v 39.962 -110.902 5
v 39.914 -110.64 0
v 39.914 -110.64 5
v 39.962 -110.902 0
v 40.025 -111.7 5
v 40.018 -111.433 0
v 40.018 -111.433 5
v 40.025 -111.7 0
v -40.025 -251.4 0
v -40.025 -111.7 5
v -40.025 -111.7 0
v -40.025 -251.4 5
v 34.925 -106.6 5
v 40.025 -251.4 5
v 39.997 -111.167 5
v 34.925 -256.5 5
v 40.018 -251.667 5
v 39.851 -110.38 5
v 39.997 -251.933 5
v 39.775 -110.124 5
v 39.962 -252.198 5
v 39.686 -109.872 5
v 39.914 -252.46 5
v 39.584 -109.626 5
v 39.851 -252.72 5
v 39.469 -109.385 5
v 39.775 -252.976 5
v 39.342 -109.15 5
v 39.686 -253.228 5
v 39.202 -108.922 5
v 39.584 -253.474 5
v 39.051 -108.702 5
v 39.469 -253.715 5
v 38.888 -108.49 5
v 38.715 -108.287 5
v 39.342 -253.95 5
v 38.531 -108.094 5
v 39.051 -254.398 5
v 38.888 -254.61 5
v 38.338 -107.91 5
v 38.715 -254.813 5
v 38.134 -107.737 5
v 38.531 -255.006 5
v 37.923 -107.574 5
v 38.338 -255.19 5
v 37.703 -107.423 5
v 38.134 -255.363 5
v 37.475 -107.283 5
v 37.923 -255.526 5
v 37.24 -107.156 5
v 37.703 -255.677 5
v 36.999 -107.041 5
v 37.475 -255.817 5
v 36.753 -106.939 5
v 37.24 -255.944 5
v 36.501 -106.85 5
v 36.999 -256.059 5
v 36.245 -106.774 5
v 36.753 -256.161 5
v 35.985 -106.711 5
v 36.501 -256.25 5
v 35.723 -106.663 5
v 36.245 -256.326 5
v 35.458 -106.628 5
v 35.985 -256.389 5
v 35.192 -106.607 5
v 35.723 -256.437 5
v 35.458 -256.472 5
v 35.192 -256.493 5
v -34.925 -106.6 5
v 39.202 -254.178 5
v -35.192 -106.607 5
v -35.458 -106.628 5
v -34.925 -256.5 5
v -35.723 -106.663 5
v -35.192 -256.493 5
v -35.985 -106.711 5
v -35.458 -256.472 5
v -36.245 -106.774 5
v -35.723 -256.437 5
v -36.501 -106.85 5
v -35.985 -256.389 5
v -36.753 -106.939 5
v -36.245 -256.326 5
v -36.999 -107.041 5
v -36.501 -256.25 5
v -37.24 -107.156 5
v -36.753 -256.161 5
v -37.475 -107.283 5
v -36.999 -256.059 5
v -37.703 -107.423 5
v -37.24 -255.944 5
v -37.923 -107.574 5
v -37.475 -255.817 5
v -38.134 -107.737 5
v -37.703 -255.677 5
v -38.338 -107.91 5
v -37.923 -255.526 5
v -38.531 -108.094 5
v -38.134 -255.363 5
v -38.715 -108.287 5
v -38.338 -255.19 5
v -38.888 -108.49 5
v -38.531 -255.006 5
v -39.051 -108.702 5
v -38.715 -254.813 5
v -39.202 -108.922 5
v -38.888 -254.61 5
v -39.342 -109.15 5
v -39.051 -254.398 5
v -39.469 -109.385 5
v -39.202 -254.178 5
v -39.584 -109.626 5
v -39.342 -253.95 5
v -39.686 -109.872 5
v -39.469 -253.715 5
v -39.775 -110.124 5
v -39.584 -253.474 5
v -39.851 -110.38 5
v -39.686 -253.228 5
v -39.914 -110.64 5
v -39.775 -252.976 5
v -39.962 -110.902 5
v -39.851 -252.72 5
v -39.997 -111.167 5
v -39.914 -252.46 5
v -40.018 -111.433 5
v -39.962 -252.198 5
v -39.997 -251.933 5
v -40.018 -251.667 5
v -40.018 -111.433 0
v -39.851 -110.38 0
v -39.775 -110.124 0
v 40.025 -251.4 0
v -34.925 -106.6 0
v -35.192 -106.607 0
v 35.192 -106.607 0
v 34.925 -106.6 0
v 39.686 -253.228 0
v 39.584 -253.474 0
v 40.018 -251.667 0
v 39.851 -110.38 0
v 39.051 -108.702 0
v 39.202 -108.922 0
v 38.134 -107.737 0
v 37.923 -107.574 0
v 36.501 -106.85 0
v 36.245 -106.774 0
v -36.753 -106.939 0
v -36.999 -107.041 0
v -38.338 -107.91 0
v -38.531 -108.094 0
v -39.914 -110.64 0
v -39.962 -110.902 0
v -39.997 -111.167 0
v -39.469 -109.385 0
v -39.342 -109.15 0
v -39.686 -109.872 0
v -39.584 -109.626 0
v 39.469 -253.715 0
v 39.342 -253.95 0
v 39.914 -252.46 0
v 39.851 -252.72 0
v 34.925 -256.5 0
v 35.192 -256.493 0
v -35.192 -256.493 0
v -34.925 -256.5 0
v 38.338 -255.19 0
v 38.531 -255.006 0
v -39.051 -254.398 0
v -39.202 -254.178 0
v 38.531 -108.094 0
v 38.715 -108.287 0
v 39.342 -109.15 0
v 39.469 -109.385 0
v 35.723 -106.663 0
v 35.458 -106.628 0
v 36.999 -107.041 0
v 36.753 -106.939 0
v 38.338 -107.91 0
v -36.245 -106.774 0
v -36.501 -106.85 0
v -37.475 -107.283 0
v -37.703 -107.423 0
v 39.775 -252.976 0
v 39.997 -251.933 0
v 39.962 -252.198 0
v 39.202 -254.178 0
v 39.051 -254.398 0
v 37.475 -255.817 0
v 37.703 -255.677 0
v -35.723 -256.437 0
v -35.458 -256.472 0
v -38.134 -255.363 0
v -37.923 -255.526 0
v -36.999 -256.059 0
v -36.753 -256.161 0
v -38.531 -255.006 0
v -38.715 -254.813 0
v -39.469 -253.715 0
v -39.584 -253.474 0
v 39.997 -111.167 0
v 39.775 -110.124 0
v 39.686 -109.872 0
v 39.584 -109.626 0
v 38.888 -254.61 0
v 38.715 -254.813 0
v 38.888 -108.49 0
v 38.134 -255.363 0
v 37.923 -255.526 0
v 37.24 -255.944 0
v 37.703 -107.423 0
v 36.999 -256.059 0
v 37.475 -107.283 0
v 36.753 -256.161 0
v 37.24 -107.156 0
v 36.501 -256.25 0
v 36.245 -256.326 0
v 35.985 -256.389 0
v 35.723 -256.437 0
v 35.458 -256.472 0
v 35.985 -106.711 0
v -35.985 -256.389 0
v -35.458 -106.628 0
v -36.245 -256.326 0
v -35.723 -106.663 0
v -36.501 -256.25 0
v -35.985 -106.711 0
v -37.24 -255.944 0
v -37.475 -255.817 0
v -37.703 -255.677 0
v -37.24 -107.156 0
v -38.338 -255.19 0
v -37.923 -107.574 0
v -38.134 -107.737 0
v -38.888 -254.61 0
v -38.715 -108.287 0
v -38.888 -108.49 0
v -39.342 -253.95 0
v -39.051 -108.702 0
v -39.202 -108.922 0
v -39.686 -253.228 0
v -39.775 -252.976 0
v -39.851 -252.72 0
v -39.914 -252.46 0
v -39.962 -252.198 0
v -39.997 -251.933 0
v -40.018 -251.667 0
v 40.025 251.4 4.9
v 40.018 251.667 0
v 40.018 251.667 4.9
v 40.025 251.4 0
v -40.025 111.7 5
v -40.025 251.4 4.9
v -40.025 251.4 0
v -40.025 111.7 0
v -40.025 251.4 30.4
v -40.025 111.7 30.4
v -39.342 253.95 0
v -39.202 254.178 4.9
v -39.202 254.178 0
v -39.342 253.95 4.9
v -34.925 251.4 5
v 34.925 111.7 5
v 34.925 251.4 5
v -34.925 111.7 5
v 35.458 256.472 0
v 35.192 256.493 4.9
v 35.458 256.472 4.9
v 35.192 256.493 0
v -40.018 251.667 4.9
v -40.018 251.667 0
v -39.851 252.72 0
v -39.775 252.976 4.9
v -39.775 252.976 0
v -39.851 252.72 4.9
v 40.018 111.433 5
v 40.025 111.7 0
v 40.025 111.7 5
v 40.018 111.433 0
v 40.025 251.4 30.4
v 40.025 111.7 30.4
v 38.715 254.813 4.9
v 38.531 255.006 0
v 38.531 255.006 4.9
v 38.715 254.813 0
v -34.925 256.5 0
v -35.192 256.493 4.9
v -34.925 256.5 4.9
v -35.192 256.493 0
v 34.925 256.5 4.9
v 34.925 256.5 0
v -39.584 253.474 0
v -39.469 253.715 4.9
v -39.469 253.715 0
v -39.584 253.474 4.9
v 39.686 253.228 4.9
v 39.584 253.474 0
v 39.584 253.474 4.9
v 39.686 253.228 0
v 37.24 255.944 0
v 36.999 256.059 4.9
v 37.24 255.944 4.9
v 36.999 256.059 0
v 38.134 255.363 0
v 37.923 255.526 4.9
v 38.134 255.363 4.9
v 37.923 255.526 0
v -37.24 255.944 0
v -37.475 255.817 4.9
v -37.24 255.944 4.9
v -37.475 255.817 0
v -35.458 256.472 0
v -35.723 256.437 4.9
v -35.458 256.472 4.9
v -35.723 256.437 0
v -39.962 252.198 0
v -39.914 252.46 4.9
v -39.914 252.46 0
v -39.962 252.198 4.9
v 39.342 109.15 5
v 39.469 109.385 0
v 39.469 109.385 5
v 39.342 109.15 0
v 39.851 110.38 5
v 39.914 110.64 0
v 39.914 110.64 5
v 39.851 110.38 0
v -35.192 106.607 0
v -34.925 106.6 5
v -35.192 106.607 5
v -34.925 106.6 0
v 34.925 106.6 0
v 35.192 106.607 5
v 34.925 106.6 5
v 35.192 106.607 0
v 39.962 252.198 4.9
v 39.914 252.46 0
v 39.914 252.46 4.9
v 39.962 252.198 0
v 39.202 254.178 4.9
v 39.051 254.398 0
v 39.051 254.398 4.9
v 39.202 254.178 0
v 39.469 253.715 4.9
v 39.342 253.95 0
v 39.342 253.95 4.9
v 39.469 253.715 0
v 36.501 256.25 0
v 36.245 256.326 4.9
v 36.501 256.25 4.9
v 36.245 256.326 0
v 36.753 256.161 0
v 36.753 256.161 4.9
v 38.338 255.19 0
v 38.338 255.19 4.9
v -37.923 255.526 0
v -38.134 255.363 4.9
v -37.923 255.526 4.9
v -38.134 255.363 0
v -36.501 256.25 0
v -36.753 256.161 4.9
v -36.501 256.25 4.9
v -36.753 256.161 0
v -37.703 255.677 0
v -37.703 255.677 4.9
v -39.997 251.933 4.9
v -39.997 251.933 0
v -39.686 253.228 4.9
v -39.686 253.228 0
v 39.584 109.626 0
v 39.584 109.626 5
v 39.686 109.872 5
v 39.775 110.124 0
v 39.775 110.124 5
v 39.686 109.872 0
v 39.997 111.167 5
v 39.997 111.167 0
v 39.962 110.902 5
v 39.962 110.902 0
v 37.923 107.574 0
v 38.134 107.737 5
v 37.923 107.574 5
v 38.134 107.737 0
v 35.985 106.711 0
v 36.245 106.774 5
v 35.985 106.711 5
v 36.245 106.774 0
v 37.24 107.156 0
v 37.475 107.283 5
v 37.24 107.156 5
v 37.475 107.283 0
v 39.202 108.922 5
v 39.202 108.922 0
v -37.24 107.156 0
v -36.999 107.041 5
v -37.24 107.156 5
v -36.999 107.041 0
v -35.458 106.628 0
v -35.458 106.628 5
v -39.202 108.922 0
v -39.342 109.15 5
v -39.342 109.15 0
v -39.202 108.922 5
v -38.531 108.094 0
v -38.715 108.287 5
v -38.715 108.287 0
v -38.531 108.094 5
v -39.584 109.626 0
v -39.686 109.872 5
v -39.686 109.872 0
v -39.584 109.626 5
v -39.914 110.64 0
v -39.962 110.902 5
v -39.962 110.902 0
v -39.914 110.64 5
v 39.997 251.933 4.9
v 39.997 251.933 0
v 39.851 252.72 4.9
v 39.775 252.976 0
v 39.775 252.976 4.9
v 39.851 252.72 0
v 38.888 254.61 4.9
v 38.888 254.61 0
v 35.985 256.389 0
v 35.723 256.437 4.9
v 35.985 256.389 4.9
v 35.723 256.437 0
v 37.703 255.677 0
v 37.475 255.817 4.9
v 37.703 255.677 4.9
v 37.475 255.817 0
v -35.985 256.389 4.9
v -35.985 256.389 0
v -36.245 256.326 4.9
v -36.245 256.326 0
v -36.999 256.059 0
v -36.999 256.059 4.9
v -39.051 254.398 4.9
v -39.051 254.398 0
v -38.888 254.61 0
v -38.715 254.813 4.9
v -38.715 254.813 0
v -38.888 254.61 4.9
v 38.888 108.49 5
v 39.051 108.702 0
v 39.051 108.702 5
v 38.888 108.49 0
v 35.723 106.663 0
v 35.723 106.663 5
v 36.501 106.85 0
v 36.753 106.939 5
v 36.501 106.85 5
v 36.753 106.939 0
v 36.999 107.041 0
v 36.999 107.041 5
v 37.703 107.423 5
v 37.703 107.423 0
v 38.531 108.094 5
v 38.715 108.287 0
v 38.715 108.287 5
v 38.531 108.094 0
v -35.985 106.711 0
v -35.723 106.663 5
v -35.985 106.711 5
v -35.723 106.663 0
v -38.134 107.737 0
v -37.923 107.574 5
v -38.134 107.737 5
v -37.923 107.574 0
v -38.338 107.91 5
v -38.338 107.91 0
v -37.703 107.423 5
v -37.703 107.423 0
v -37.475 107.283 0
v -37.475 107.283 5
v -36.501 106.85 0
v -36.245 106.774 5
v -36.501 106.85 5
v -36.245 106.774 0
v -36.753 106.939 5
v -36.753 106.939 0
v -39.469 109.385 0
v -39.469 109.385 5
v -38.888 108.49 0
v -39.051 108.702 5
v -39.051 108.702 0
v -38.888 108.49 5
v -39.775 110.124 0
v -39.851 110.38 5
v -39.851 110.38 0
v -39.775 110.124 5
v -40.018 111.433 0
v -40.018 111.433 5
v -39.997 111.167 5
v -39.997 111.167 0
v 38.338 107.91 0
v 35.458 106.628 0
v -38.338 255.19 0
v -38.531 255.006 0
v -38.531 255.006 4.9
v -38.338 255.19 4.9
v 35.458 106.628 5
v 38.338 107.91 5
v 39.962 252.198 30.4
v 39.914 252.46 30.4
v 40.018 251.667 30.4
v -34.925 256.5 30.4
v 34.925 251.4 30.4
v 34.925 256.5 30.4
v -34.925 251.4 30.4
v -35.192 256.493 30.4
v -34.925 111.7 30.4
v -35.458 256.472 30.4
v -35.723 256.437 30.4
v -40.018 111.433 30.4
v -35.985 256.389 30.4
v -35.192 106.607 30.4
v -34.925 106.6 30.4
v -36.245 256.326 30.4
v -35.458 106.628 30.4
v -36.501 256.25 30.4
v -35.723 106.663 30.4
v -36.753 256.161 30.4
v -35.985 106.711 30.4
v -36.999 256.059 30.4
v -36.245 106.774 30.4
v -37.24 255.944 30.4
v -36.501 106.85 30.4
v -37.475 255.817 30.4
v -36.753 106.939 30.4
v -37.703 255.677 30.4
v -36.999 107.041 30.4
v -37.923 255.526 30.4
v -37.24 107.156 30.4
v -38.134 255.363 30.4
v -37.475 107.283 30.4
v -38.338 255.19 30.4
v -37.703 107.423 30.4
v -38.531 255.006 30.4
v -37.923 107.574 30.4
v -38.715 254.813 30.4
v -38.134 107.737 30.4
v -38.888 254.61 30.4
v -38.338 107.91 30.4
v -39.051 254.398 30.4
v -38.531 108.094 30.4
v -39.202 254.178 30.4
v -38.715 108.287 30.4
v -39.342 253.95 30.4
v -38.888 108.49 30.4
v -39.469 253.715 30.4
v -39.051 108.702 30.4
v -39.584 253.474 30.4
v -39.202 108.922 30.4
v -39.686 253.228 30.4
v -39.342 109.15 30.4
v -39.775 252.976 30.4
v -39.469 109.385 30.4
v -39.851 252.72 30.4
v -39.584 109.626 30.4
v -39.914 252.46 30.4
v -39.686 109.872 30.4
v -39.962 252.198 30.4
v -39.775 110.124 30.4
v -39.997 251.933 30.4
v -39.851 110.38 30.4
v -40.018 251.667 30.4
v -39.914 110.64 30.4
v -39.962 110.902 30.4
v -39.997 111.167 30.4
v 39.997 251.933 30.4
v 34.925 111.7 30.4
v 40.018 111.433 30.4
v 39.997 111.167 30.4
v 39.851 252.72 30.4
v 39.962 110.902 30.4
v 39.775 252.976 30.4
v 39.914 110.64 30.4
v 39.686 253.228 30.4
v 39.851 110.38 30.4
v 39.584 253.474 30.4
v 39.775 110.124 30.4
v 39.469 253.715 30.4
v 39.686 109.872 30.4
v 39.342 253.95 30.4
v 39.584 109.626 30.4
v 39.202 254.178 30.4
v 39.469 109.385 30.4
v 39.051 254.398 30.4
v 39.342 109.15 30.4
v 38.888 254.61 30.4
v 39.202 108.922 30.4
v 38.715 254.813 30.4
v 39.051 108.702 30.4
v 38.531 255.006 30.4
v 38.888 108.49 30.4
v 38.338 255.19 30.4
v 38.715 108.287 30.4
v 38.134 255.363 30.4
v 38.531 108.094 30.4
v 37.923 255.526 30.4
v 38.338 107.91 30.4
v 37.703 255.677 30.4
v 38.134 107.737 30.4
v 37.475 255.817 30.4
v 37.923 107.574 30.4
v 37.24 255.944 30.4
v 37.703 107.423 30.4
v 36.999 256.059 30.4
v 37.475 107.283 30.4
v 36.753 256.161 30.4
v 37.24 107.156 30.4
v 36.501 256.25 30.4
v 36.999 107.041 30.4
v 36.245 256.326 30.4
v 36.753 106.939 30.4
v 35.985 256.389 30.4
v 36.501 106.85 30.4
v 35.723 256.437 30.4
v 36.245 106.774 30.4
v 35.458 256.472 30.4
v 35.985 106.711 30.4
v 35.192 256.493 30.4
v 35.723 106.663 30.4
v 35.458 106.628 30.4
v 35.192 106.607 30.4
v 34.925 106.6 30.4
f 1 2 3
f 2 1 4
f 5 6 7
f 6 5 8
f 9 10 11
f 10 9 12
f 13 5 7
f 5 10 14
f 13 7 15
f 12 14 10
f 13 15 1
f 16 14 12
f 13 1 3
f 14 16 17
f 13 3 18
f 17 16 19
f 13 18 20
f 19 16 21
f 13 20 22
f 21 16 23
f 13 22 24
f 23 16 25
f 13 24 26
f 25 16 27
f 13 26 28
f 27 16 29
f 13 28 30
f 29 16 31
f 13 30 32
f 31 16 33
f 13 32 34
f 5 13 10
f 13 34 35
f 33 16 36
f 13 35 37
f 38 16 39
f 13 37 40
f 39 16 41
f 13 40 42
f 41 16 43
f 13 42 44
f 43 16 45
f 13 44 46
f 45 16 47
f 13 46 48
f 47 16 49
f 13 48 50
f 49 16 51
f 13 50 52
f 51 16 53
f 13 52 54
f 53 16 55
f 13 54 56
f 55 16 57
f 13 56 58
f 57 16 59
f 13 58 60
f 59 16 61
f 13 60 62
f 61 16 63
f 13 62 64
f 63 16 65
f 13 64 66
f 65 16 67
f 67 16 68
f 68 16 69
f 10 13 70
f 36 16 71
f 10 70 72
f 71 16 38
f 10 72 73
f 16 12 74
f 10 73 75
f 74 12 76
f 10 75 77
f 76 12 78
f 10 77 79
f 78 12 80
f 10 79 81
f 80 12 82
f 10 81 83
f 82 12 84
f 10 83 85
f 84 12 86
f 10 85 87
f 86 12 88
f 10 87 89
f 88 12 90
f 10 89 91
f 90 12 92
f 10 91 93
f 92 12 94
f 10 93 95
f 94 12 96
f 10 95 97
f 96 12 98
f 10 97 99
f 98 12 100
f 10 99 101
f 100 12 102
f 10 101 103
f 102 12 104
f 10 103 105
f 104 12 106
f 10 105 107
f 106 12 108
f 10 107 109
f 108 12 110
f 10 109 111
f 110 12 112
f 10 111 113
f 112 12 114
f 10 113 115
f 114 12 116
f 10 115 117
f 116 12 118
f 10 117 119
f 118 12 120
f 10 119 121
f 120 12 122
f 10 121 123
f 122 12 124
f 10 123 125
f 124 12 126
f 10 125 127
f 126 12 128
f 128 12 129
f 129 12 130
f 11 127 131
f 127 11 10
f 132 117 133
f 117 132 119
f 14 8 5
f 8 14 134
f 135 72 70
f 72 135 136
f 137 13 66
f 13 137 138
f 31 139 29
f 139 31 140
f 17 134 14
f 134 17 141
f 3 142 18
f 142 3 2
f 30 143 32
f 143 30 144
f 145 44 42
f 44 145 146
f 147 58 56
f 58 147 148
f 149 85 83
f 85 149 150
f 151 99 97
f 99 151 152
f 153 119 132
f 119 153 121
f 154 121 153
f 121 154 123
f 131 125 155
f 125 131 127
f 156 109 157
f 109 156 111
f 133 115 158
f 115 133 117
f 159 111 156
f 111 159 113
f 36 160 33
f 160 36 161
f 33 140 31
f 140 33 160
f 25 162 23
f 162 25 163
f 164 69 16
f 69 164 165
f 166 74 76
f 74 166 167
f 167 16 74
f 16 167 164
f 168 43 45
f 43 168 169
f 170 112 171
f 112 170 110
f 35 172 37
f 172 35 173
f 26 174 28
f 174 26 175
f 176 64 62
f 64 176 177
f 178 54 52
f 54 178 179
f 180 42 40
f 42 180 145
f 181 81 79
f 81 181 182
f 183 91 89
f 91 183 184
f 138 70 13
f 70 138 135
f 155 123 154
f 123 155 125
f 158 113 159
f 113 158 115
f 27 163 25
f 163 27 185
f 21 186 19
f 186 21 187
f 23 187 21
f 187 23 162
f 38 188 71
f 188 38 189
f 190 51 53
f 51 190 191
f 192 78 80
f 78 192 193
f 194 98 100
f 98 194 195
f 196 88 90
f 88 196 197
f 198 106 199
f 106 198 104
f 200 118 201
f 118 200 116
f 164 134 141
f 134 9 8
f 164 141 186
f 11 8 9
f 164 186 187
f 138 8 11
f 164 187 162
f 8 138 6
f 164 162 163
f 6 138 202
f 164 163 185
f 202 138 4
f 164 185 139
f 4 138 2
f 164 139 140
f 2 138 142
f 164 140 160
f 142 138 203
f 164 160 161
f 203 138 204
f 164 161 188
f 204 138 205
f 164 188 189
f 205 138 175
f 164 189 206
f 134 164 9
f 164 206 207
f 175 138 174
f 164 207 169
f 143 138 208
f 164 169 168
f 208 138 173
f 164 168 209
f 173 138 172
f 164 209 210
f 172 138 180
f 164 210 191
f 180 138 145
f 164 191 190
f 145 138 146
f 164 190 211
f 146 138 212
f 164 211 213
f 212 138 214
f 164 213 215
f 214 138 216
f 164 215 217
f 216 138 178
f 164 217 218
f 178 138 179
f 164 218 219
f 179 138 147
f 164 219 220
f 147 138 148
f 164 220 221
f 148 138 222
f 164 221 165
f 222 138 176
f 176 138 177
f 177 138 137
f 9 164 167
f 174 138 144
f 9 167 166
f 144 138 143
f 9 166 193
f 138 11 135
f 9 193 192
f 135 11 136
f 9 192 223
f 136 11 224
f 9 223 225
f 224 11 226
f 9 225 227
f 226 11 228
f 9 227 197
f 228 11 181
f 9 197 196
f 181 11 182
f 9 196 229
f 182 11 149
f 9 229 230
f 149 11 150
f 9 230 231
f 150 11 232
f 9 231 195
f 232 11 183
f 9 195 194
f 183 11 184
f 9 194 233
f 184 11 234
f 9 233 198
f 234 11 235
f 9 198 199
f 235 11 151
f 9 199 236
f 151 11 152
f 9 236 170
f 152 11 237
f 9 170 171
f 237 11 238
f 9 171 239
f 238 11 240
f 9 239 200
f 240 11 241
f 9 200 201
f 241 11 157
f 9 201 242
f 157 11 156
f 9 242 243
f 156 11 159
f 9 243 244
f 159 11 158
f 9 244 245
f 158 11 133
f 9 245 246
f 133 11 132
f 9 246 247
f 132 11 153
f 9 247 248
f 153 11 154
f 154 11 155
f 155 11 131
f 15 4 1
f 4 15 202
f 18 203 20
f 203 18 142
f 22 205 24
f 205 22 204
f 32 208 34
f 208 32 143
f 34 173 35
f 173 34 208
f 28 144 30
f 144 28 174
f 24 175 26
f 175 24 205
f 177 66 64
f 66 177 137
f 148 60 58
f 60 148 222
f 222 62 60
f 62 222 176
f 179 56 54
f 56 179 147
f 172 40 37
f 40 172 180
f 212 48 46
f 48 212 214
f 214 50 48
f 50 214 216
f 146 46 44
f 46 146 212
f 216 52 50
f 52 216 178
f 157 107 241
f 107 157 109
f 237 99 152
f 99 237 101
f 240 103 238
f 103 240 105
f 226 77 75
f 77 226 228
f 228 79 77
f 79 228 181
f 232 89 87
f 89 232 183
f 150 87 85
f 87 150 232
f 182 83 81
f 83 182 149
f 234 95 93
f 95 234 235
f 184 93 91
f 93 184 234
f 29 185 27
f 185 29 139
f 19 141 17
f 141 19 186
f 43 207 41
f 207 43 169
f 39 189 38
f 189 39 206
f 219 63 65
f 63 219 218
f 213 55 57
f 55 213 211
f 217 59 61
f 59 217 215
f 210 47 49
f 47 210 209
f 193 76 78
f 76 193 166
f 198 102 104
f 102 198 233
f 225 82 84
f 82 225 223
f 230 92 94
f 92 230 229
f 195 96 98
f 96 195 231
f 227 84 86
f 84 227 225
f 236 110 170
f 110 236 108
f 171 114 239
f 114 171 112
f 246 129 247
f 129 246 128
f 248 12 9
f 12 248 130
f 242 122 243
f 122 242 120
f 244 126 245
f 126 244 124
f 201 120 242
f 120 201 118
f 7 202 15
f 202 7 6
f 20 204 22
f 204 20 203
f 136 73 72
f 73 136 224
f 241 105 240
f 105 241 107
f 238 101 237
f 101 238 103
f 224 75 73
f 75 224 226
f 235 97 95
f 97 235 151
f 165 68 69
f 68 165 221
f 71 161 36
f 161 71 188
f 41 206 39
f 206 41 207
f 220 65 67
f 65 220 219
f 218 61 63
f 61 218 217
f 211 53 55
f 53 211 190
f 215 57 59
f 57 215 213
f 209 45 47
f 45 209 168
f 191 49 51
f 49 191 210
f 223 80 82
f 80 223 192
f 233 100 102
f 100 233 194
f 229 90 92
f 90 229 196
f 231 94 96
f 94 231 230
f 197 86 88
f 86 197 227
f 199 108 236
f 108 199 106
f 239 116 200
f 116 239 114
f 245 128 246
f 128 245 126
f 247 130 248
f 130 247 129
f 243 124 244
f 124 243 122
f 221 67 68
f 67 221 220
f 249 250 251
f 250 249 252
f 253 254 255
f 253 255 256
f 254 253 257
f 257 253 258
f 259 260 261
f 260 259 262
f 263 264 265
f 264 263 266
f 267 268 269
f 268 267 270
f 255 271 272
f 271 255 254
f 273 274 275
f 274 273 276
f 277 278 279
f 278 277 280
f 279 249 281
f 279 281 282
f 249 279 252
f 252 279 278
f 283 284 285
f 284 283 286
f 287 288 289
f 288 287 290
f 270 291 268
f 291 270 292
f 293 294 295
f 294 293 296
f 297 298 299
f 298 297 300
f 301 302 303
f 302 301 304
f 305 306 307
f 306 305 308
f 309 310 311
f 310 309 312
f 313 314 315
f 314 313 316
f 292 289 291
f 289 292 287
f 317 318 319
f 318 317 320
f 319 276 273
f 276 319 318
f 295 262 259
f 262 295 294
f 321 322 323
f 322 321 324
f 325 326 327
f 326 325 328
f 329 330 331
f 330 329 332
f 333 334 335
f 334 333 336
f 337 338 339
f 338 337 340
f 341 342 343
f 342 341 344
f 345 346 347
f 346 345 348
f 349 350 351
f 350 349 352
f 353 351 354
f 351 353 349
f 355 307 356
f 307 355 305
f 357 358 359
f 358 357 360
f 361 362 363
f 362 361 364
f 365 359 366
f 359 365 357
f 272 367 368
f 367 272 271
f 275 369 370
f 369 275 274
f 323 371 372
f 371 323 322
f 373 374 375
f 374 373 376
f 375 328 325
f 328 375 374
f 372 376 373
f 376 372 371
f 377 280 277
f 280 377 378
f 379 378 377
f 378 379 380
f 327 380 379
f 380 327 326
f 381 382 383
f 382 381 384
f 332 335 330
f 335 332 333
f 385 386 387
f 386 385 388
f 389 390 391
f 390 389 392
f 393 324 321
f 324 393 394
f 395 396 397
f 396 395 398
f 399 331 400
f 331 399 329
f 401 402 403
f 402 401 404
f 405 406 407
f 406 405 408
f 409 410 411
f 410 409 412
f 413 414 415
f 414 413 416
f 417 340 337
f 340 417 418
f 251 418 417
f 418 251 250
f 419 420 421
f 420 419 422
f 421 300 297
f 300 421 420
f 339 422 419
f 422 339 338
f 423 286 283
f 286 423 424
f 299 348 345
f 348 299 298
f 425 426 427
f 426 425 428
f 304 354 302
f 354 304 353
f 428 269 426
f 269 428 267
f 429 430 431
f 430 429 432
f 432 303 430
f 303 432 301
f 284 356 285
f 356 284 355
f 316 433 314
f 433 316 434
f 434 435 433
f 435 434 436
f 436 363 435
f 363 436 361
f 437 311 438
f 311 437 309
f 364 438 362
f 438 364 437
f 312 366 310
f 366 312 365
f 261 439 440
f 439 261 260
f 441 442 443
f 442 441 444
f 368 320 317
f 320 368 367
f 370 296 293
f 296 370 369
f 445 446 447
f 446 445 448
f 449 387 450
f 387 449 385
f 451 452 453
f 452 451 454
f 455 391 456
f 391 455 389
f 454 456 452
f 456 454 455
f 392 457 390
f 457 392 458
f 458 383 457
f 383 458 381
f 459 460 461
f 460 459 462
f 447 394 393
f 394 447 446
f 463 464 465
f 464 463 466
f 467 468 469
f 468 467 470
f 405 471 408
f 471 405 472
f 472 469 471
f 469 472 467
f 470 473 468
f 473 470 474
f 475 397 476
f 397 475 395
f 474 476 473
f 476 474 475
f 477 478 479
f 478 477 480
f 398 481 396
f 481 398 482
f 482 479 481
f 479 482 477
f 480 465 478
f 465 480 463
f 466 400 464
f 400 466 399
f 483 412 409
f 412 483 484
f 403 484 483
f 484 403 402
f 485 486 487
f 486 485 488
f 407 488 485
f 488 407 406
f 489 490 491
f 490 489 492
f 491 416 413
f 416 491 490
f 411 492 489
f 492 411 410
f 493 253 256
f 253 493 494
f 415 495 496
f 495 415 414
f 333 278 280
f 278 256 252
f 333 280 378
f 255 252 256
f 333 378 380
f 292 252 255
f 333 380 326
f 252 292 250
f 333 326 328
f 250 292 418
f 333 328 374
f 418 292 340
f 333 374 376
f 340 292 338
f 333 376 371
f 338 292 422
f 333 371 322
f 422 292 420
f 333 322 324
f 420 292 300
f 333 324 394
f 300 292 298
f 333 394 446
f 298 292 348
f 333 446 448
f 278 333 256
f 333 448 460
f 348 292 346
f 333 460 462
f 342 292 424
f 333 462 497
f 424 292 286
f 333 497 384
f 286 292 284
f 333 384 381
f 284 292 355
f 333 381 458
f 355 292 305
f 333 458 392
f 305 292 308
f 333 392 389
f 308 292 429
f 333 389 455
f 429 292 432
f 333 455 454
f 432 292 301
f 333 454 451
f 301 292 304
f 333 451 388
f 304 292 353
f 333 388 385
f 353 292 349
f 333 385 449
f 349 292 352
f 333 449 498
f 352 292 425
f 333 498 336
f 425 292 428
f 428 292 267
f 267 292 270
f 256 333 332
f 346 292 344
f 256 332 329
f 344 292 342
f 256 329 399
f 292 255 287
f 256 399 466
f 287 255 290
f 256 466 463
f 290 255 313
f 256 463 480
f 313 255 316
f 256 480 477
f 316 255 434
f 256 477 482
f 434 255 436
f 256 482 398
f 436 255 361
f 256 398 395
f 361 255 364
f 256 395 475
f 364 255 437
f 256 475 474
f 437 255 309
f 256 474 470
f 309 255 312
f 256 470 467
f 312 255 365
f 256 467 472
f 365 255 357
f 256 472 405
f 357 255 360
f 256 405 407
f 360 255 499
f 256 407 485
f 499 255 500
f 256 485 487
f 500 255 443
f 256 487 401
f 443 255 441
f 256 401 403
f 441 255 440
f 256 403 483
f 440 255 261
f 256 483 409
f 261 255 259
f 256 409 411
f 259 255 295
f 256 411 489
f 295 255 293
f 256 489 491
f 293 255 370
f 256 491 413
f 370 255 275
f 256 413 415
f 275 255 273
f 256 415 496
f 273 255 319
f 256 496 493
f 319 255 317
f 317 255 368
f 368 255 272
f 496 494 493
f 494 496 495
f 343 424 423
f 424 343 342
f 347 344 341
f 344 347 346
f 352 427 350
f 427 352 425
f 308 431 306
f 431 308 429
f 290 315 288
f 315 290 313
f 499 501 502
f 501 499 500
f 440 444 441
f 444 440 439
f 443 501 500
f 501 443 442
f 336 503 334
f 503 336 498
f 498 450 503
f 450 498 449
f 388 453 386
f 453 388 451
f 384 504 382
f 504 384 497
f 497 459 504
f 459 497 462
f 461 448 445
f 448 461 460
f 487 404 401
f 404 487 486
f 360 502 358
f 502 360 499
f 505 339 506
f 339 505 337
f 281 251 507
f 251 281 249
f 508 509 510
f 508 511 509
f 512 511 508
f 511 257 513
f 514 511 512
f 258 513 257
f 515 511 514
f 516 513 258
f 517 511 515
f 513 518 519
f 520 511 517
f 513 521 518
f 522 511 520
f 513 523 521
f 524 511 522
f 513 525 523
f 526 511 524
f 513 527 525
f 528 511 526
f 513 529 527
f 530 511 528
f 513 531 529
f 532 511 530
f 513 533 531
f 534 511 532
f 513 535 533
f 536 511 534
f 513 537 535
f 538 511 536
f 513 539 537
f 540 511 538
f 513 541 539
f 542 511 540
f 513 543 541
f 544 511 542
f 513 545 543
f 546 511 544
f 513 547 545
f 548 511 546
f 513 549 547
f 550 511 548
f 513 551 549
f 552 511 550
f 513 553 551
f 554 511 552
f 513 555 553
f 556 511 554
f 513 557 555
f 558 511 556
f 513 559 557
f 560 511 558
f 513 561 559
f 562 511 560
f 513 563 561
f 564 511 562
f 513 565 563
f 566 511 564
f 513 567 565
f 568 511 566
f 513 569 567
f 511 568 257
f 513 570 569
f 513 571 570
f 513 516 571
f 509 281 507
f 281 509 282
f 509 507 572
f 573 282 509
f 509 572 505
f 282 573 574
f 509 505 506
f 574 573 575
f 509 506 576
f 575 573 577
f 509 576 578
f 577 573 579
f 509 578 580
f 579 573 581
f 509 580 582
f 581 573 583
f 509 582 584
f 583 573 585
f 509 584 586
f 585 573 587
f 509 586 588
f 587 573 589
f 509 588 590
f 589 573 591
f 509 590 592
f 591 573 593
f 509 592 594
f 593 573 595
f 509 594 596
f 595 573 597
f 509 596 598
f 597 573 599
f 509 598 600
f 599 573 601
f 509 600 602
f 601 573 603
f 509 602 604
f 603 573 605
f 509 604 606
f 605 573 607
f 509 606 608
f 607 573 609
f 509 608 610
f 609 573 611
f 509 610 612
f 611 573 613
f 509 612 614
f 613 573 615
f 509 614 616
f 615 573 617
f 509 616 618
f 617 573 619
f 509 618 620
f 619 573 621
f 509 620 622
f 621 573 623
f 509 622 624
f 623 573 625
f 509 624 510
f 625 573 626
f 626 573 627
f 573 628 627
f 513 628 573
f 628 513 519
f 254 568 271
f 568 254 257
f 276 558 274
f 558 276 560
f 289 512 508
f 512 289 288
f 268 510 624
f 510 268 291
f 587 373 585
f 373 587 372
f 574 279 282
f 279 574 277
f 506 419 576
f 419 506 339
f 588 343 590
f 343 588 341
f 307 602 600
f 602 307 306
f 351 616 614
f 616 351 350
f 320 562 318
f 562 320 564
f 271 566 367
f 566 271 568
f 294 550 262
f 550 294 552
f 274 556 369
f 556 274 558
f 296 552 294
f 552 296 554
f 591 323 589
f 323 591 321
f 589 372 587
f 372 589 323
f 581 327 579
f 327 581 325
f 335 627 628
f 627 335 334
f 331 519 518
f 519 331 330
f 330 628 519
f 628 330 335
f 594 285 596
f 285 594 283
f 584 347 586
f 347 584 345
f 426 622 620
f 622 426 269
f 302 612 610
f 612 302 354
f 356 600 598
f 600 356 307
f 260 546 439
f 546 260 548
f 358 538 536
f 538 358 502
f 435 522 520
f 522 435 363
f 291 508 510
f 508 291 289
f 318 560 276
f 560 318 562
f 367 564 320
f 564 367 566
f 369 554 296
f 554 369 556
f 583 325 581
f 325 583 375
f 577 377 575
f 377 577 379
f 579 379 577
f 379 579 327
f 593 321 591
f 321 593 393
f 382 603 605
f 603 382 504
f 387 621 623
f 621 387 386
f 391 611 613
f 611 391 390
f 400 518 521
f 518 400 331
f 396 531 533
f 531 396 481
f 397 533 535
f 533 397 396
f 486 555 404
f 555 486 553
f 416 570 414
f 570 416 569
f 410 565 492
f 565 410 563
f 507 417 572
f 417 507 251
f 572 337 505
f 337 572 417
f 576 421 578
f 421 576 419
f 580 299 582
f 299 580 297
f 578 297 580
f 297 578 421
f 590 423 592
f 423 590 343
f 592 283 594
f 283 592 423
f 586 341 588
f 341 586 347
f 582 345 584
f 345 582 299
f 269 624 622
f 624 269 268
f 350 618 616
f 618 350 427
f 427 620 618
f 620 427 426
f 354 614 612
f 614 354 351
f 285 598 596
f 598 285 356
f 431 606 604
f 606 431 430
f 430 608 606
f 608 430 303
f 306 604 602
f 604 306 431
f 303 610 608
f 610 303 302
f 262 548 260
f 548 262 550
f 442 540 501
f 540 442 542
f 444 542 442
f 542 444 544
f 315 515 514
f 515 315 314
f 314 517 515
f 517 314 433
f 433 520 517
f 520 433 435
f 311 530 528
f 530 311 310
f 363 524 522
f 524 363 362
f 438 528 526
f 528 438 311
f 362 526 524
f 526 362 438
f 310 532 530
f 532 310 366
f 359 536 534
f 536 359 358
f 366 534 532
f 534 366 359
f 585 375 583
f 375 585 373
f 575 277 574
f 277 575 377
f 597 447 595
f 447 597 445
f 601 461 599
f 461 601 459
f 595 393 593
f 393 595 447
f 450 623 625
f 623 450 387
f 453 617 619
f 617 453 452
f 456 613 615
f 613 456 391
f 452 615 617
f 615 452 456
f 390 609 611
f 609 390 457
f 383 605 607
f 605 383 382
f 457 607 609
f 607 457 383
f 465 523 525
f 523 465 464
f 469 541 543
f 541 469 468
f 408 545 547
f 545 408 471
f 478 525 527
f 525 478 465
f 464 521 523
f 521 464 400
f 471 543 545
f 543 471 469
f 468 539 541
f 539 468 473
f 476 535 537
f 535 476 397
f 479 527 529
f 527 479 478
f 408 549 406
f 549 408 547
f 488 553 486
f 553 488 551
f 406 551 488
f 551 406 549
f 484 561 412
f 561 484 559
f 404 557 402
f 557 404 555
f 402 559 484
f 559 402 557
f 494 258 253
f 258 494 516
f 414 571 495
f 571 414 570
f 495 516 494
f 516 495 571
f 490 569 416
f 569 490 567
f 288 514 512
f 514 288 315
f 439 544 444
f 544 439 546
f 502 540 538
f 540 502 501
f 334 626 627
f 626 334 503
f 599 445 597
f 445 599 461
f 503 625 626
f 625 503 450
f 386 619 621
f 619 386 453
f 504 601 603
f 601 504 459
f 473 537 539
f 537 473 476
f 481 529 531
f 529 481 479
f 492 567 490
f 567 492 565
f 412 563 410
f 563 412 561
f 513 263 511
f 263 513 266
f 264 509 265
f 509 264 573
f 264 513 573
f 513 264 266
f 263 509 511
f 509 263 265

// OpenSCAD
/*[Dimensions]*/

// Width of the case in mm (interior dimension)
interiorWidth = 69.85;

// Length of the case in mm (interior dimension)
interiorLength = 139.7;

// Height of the case in mm (interior dimension)
interiorHeight = 25.4;

// Case interior fillet radius
interiorFillet = 0;

// Width of the hinge in mm
hingeWidth = 0;


/*[Walls]*/

// Horizontal wall (top and bottom) thickness
coverThickness = 5.0; 

// Vertical wall (side) thickness 
sidewallWidth = 5.1; 

// Amount the lid protrudes into the case (larger value allows the case to close more securely)
lidInsetHeight = 0;

// Thickness of the hinge (it should be no more than a few layers thick keep it flexible)
hingeThickness = 0;

// hinge length multiplier (as a function of case height - longer hinges may be needed for less flexible plastics)
hingeLengthScale = 8;


/*[Details]*/

// Distance the top and bottom surfaces extend beyond the sides of the case (makes the case easier to open)
rimInset = 0.0; 

// Length of the opening tab on the lid of the case (optional - set to 0 to remove)
tabSize = 0; 

// Fillet radius used for hinge and tab
hingeFillet = 3;


/*[Printer Tolerances]*/

// Adjust the tightness of the closed case (larger value makes the case looser, negative value makes it tighter - try adjusting in 0.1mm increments)
lidInsetOffset = 0.0;



/*[hidden]*/
eps = 0.1;
$fn = 120; // resolution

module case()
{
	// minimal error checking
	

	baseLength = interiorLength + sidewallWidth*2;
	baseWidth = interiorWidth + sidewallWidth*2;
	baseRadius = interiorFillet + sidewallWidth;

	caseLength = baseLength + rimInset*2;
	caseWidth = baseWidth + rimInset*2;
	caseRadius = baseRadius + rimInset;

	hingeLength = hingeLengthScale * interiorHeight + coverThickness*2;
	centerY = (caseLength + hingeLength)/2;

	filletXOffset = hingeWidth/2 + hingeFillet;
	filletYOffset = hingeLength/2 - hingeFillet;


	module rrect(h, w, l, r) {
		r = min(r, min(w/2, l/2));
		w = max(w, eps);
		l = max(l, eps);
		h = max(h, eps);
		if (r <= 0) {
			translate([-w/2, -l/2,0]) {
				cube([w,l,h]);
			}
		} else {
			hull() {
				for (y = [-l/2+r, l/2-r]) {
					for (x = [-w/2+r, w/2-r]) {
						translate([x,y,0]) {
							cylinder(h=h, r=r, center=false
                        );
						}
					}
				}
			}
		}
	}

	module rrectTube(h, ow, ol, or, t) {
		difference() {
			rrect(h=h, w=ow, l=ol, r=or);
			translate([0,0,-eps]) {
				rrect(h=h+eps*2, w=ow-t*2, l=ol-t*2, r=or-t);
			}
		}
	}

	union() {
		// bottom surfaces
		for (i = [-centerY, centerY]) {
			translate([0,i,0]) {
				rrect(h=coverThickness, w=caseWidth, l=caseLength, r=caseRadius);
			}
		}

		translate([0,0,coverThickness-eps]) {

			// base
			translate([0,centerY,0]) {
				rrectTube(h=interiorHeight+eps, ow=baseWidth, ol=baseLength, or=baseRadius, t=sidewallWidth);
			}

			// lid
			 {
				
			}
		}

		// hinge
		if (hingeWidth > caseWidth - caseRadius*2) {
			translate([-hingeWidth/2,-centerY,0]) {
				cube([hingeWidth, centerY*2, hingeThickness]);
			}
		} else {
			difference() {
				translate([-hingeWidth/2 - hingeFillet,-centerY,0]) {
					cube([hingeWidth + hingeFillet*2, centerY*2, hingeThickness]);
				}
	
				
			}
		}

		// tab
		if (tabSize > 0) {
			hull() {
				for (x = [hingeFillet - hingeWidth/2, hingeWidth/2 - hingeFillet]) {
					translate([x,-caseLength - hingeLength/2 - tabSize + hingeFillet,0]) {
						cylinder(h=coverThickness, r=hingeFillet, center=false);
					}
				}
				translate([-hingeWidth/2,-centerY,0]) {
					cube([hingeWidth, eps, coverThickness]);
				}
			}
		}
	}	


}

case();
